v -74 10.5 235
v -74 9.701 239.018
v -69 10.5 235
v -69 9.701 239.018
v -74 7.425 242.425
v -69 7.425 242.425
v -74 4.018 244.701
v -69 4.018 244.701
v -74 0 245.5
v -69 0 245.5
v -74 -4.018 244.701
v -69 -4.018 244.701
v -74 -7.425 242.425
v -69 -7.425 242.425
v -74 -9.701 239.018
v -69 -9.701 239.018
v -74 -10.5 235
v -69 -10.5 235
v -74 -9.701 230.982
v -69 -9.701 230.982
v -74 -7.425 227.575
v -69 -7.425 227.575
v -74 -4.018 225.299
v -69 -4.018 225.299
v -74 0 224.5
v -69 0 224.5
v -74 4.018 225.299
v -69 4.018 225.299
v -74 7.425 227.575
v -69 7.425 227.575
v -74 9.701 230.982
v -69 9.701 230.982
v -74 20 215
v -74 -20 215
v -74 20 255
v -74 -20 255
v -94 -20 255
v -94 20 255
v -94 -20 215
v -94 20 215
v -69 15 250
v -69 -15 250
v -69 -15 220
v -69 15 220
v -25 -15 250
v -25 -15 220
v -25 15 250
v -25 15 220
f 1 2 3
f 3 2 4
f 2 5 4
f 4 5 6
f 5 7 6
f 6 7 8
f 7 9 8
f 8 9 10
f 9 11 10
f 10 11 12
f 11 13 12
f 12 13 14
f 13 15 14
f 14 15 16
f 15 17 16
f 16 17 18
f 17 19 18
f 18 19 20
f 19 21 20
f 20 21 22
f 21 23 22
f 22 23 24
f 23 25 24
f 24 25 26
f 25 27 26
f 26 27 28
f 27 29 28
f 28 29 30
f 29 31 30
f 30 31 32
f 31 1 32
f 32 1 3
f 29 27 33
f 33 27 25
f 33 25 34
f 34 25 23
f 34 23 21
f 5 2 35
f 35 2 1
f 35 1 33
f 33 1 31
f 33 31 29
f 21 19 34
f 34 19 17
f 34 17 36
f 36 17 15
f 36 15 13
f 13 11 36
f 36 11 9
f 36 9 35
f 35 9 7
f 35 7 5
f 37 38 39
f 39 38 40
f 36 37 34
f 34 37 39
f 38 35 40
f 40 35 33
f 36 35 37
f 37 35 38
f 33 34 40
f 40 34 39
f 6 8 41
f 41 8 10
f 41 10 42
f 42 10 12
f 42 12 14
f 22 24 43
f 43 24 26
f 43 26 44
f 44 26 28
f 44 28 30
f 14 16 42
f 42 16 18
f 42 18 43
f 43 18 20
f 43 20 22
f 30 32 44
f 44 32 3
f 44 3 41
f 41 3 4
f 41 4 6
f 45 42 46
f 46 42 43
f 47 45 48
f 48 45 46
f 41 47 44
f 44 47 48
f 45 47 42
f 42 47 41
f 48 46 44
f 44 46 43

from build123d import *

# Parameters (mm, degrees)
SK_HEAD_W           = 20
SK_HEAD_H           = 40
HEAD_DEPTH          = 40
BUSHING_DEPTH       = 6
SK_CONTACT_BLOCK_W  = 44
SK_CONTACT_BLOCK_H  = 30
CONTACT_BLOCK_DEPTH = 30


with BuildPart() as part:
    # SK_Head → Head (new body)
    with BuildSketch(Plane.XY.offset(215)):
        with Locations((-84, 0)):
            Rectangle(SK_HEAD_W, SK_HEAD_H)
    extrude(amount=HEAD_DEPTH)

    # SK_Bushing → Bushing (add)
    with BuildSketch(Plane(origin=(-74.5, 0, 0), x_dir=(0, 0, -1), z_dir=(1, 0, 0))):
        Polygon((-239.01817604, 9.700735091), (-242.424621202, 7.424621202), (-244.700735091, 4.01817604), (-245.5, 0), (-244.700735091, -4.01817604), (-242.424621202, -7.424621202), (-239.01817604, -9.700735091), (-235, -10.5), (-230.98182396, -9.700735091), (-227.575378798, -7.424621202), (-225.299264909, -4.01817604), (-224.5, 0), (-225.299264909, 4.01817604), (-227.575378798, 7.424621202), (-230.98182396, 9.700735091), (-235, 10.5), align=None)
    extrude(amount=BUSHING_DEPTH)

    # SK_Contact_Block → Contact_Block (add)
    with BuildSketch(Plane.XY.offset(220)):
        with Locations((-47, 0)):
            Rectangle(SK_CONTACT_BLOCK_W, SK_CONTACT_BLOCK_H)
    extrude(amount=CONTACT_BLOCK_DEPTH)


solid = part.part
